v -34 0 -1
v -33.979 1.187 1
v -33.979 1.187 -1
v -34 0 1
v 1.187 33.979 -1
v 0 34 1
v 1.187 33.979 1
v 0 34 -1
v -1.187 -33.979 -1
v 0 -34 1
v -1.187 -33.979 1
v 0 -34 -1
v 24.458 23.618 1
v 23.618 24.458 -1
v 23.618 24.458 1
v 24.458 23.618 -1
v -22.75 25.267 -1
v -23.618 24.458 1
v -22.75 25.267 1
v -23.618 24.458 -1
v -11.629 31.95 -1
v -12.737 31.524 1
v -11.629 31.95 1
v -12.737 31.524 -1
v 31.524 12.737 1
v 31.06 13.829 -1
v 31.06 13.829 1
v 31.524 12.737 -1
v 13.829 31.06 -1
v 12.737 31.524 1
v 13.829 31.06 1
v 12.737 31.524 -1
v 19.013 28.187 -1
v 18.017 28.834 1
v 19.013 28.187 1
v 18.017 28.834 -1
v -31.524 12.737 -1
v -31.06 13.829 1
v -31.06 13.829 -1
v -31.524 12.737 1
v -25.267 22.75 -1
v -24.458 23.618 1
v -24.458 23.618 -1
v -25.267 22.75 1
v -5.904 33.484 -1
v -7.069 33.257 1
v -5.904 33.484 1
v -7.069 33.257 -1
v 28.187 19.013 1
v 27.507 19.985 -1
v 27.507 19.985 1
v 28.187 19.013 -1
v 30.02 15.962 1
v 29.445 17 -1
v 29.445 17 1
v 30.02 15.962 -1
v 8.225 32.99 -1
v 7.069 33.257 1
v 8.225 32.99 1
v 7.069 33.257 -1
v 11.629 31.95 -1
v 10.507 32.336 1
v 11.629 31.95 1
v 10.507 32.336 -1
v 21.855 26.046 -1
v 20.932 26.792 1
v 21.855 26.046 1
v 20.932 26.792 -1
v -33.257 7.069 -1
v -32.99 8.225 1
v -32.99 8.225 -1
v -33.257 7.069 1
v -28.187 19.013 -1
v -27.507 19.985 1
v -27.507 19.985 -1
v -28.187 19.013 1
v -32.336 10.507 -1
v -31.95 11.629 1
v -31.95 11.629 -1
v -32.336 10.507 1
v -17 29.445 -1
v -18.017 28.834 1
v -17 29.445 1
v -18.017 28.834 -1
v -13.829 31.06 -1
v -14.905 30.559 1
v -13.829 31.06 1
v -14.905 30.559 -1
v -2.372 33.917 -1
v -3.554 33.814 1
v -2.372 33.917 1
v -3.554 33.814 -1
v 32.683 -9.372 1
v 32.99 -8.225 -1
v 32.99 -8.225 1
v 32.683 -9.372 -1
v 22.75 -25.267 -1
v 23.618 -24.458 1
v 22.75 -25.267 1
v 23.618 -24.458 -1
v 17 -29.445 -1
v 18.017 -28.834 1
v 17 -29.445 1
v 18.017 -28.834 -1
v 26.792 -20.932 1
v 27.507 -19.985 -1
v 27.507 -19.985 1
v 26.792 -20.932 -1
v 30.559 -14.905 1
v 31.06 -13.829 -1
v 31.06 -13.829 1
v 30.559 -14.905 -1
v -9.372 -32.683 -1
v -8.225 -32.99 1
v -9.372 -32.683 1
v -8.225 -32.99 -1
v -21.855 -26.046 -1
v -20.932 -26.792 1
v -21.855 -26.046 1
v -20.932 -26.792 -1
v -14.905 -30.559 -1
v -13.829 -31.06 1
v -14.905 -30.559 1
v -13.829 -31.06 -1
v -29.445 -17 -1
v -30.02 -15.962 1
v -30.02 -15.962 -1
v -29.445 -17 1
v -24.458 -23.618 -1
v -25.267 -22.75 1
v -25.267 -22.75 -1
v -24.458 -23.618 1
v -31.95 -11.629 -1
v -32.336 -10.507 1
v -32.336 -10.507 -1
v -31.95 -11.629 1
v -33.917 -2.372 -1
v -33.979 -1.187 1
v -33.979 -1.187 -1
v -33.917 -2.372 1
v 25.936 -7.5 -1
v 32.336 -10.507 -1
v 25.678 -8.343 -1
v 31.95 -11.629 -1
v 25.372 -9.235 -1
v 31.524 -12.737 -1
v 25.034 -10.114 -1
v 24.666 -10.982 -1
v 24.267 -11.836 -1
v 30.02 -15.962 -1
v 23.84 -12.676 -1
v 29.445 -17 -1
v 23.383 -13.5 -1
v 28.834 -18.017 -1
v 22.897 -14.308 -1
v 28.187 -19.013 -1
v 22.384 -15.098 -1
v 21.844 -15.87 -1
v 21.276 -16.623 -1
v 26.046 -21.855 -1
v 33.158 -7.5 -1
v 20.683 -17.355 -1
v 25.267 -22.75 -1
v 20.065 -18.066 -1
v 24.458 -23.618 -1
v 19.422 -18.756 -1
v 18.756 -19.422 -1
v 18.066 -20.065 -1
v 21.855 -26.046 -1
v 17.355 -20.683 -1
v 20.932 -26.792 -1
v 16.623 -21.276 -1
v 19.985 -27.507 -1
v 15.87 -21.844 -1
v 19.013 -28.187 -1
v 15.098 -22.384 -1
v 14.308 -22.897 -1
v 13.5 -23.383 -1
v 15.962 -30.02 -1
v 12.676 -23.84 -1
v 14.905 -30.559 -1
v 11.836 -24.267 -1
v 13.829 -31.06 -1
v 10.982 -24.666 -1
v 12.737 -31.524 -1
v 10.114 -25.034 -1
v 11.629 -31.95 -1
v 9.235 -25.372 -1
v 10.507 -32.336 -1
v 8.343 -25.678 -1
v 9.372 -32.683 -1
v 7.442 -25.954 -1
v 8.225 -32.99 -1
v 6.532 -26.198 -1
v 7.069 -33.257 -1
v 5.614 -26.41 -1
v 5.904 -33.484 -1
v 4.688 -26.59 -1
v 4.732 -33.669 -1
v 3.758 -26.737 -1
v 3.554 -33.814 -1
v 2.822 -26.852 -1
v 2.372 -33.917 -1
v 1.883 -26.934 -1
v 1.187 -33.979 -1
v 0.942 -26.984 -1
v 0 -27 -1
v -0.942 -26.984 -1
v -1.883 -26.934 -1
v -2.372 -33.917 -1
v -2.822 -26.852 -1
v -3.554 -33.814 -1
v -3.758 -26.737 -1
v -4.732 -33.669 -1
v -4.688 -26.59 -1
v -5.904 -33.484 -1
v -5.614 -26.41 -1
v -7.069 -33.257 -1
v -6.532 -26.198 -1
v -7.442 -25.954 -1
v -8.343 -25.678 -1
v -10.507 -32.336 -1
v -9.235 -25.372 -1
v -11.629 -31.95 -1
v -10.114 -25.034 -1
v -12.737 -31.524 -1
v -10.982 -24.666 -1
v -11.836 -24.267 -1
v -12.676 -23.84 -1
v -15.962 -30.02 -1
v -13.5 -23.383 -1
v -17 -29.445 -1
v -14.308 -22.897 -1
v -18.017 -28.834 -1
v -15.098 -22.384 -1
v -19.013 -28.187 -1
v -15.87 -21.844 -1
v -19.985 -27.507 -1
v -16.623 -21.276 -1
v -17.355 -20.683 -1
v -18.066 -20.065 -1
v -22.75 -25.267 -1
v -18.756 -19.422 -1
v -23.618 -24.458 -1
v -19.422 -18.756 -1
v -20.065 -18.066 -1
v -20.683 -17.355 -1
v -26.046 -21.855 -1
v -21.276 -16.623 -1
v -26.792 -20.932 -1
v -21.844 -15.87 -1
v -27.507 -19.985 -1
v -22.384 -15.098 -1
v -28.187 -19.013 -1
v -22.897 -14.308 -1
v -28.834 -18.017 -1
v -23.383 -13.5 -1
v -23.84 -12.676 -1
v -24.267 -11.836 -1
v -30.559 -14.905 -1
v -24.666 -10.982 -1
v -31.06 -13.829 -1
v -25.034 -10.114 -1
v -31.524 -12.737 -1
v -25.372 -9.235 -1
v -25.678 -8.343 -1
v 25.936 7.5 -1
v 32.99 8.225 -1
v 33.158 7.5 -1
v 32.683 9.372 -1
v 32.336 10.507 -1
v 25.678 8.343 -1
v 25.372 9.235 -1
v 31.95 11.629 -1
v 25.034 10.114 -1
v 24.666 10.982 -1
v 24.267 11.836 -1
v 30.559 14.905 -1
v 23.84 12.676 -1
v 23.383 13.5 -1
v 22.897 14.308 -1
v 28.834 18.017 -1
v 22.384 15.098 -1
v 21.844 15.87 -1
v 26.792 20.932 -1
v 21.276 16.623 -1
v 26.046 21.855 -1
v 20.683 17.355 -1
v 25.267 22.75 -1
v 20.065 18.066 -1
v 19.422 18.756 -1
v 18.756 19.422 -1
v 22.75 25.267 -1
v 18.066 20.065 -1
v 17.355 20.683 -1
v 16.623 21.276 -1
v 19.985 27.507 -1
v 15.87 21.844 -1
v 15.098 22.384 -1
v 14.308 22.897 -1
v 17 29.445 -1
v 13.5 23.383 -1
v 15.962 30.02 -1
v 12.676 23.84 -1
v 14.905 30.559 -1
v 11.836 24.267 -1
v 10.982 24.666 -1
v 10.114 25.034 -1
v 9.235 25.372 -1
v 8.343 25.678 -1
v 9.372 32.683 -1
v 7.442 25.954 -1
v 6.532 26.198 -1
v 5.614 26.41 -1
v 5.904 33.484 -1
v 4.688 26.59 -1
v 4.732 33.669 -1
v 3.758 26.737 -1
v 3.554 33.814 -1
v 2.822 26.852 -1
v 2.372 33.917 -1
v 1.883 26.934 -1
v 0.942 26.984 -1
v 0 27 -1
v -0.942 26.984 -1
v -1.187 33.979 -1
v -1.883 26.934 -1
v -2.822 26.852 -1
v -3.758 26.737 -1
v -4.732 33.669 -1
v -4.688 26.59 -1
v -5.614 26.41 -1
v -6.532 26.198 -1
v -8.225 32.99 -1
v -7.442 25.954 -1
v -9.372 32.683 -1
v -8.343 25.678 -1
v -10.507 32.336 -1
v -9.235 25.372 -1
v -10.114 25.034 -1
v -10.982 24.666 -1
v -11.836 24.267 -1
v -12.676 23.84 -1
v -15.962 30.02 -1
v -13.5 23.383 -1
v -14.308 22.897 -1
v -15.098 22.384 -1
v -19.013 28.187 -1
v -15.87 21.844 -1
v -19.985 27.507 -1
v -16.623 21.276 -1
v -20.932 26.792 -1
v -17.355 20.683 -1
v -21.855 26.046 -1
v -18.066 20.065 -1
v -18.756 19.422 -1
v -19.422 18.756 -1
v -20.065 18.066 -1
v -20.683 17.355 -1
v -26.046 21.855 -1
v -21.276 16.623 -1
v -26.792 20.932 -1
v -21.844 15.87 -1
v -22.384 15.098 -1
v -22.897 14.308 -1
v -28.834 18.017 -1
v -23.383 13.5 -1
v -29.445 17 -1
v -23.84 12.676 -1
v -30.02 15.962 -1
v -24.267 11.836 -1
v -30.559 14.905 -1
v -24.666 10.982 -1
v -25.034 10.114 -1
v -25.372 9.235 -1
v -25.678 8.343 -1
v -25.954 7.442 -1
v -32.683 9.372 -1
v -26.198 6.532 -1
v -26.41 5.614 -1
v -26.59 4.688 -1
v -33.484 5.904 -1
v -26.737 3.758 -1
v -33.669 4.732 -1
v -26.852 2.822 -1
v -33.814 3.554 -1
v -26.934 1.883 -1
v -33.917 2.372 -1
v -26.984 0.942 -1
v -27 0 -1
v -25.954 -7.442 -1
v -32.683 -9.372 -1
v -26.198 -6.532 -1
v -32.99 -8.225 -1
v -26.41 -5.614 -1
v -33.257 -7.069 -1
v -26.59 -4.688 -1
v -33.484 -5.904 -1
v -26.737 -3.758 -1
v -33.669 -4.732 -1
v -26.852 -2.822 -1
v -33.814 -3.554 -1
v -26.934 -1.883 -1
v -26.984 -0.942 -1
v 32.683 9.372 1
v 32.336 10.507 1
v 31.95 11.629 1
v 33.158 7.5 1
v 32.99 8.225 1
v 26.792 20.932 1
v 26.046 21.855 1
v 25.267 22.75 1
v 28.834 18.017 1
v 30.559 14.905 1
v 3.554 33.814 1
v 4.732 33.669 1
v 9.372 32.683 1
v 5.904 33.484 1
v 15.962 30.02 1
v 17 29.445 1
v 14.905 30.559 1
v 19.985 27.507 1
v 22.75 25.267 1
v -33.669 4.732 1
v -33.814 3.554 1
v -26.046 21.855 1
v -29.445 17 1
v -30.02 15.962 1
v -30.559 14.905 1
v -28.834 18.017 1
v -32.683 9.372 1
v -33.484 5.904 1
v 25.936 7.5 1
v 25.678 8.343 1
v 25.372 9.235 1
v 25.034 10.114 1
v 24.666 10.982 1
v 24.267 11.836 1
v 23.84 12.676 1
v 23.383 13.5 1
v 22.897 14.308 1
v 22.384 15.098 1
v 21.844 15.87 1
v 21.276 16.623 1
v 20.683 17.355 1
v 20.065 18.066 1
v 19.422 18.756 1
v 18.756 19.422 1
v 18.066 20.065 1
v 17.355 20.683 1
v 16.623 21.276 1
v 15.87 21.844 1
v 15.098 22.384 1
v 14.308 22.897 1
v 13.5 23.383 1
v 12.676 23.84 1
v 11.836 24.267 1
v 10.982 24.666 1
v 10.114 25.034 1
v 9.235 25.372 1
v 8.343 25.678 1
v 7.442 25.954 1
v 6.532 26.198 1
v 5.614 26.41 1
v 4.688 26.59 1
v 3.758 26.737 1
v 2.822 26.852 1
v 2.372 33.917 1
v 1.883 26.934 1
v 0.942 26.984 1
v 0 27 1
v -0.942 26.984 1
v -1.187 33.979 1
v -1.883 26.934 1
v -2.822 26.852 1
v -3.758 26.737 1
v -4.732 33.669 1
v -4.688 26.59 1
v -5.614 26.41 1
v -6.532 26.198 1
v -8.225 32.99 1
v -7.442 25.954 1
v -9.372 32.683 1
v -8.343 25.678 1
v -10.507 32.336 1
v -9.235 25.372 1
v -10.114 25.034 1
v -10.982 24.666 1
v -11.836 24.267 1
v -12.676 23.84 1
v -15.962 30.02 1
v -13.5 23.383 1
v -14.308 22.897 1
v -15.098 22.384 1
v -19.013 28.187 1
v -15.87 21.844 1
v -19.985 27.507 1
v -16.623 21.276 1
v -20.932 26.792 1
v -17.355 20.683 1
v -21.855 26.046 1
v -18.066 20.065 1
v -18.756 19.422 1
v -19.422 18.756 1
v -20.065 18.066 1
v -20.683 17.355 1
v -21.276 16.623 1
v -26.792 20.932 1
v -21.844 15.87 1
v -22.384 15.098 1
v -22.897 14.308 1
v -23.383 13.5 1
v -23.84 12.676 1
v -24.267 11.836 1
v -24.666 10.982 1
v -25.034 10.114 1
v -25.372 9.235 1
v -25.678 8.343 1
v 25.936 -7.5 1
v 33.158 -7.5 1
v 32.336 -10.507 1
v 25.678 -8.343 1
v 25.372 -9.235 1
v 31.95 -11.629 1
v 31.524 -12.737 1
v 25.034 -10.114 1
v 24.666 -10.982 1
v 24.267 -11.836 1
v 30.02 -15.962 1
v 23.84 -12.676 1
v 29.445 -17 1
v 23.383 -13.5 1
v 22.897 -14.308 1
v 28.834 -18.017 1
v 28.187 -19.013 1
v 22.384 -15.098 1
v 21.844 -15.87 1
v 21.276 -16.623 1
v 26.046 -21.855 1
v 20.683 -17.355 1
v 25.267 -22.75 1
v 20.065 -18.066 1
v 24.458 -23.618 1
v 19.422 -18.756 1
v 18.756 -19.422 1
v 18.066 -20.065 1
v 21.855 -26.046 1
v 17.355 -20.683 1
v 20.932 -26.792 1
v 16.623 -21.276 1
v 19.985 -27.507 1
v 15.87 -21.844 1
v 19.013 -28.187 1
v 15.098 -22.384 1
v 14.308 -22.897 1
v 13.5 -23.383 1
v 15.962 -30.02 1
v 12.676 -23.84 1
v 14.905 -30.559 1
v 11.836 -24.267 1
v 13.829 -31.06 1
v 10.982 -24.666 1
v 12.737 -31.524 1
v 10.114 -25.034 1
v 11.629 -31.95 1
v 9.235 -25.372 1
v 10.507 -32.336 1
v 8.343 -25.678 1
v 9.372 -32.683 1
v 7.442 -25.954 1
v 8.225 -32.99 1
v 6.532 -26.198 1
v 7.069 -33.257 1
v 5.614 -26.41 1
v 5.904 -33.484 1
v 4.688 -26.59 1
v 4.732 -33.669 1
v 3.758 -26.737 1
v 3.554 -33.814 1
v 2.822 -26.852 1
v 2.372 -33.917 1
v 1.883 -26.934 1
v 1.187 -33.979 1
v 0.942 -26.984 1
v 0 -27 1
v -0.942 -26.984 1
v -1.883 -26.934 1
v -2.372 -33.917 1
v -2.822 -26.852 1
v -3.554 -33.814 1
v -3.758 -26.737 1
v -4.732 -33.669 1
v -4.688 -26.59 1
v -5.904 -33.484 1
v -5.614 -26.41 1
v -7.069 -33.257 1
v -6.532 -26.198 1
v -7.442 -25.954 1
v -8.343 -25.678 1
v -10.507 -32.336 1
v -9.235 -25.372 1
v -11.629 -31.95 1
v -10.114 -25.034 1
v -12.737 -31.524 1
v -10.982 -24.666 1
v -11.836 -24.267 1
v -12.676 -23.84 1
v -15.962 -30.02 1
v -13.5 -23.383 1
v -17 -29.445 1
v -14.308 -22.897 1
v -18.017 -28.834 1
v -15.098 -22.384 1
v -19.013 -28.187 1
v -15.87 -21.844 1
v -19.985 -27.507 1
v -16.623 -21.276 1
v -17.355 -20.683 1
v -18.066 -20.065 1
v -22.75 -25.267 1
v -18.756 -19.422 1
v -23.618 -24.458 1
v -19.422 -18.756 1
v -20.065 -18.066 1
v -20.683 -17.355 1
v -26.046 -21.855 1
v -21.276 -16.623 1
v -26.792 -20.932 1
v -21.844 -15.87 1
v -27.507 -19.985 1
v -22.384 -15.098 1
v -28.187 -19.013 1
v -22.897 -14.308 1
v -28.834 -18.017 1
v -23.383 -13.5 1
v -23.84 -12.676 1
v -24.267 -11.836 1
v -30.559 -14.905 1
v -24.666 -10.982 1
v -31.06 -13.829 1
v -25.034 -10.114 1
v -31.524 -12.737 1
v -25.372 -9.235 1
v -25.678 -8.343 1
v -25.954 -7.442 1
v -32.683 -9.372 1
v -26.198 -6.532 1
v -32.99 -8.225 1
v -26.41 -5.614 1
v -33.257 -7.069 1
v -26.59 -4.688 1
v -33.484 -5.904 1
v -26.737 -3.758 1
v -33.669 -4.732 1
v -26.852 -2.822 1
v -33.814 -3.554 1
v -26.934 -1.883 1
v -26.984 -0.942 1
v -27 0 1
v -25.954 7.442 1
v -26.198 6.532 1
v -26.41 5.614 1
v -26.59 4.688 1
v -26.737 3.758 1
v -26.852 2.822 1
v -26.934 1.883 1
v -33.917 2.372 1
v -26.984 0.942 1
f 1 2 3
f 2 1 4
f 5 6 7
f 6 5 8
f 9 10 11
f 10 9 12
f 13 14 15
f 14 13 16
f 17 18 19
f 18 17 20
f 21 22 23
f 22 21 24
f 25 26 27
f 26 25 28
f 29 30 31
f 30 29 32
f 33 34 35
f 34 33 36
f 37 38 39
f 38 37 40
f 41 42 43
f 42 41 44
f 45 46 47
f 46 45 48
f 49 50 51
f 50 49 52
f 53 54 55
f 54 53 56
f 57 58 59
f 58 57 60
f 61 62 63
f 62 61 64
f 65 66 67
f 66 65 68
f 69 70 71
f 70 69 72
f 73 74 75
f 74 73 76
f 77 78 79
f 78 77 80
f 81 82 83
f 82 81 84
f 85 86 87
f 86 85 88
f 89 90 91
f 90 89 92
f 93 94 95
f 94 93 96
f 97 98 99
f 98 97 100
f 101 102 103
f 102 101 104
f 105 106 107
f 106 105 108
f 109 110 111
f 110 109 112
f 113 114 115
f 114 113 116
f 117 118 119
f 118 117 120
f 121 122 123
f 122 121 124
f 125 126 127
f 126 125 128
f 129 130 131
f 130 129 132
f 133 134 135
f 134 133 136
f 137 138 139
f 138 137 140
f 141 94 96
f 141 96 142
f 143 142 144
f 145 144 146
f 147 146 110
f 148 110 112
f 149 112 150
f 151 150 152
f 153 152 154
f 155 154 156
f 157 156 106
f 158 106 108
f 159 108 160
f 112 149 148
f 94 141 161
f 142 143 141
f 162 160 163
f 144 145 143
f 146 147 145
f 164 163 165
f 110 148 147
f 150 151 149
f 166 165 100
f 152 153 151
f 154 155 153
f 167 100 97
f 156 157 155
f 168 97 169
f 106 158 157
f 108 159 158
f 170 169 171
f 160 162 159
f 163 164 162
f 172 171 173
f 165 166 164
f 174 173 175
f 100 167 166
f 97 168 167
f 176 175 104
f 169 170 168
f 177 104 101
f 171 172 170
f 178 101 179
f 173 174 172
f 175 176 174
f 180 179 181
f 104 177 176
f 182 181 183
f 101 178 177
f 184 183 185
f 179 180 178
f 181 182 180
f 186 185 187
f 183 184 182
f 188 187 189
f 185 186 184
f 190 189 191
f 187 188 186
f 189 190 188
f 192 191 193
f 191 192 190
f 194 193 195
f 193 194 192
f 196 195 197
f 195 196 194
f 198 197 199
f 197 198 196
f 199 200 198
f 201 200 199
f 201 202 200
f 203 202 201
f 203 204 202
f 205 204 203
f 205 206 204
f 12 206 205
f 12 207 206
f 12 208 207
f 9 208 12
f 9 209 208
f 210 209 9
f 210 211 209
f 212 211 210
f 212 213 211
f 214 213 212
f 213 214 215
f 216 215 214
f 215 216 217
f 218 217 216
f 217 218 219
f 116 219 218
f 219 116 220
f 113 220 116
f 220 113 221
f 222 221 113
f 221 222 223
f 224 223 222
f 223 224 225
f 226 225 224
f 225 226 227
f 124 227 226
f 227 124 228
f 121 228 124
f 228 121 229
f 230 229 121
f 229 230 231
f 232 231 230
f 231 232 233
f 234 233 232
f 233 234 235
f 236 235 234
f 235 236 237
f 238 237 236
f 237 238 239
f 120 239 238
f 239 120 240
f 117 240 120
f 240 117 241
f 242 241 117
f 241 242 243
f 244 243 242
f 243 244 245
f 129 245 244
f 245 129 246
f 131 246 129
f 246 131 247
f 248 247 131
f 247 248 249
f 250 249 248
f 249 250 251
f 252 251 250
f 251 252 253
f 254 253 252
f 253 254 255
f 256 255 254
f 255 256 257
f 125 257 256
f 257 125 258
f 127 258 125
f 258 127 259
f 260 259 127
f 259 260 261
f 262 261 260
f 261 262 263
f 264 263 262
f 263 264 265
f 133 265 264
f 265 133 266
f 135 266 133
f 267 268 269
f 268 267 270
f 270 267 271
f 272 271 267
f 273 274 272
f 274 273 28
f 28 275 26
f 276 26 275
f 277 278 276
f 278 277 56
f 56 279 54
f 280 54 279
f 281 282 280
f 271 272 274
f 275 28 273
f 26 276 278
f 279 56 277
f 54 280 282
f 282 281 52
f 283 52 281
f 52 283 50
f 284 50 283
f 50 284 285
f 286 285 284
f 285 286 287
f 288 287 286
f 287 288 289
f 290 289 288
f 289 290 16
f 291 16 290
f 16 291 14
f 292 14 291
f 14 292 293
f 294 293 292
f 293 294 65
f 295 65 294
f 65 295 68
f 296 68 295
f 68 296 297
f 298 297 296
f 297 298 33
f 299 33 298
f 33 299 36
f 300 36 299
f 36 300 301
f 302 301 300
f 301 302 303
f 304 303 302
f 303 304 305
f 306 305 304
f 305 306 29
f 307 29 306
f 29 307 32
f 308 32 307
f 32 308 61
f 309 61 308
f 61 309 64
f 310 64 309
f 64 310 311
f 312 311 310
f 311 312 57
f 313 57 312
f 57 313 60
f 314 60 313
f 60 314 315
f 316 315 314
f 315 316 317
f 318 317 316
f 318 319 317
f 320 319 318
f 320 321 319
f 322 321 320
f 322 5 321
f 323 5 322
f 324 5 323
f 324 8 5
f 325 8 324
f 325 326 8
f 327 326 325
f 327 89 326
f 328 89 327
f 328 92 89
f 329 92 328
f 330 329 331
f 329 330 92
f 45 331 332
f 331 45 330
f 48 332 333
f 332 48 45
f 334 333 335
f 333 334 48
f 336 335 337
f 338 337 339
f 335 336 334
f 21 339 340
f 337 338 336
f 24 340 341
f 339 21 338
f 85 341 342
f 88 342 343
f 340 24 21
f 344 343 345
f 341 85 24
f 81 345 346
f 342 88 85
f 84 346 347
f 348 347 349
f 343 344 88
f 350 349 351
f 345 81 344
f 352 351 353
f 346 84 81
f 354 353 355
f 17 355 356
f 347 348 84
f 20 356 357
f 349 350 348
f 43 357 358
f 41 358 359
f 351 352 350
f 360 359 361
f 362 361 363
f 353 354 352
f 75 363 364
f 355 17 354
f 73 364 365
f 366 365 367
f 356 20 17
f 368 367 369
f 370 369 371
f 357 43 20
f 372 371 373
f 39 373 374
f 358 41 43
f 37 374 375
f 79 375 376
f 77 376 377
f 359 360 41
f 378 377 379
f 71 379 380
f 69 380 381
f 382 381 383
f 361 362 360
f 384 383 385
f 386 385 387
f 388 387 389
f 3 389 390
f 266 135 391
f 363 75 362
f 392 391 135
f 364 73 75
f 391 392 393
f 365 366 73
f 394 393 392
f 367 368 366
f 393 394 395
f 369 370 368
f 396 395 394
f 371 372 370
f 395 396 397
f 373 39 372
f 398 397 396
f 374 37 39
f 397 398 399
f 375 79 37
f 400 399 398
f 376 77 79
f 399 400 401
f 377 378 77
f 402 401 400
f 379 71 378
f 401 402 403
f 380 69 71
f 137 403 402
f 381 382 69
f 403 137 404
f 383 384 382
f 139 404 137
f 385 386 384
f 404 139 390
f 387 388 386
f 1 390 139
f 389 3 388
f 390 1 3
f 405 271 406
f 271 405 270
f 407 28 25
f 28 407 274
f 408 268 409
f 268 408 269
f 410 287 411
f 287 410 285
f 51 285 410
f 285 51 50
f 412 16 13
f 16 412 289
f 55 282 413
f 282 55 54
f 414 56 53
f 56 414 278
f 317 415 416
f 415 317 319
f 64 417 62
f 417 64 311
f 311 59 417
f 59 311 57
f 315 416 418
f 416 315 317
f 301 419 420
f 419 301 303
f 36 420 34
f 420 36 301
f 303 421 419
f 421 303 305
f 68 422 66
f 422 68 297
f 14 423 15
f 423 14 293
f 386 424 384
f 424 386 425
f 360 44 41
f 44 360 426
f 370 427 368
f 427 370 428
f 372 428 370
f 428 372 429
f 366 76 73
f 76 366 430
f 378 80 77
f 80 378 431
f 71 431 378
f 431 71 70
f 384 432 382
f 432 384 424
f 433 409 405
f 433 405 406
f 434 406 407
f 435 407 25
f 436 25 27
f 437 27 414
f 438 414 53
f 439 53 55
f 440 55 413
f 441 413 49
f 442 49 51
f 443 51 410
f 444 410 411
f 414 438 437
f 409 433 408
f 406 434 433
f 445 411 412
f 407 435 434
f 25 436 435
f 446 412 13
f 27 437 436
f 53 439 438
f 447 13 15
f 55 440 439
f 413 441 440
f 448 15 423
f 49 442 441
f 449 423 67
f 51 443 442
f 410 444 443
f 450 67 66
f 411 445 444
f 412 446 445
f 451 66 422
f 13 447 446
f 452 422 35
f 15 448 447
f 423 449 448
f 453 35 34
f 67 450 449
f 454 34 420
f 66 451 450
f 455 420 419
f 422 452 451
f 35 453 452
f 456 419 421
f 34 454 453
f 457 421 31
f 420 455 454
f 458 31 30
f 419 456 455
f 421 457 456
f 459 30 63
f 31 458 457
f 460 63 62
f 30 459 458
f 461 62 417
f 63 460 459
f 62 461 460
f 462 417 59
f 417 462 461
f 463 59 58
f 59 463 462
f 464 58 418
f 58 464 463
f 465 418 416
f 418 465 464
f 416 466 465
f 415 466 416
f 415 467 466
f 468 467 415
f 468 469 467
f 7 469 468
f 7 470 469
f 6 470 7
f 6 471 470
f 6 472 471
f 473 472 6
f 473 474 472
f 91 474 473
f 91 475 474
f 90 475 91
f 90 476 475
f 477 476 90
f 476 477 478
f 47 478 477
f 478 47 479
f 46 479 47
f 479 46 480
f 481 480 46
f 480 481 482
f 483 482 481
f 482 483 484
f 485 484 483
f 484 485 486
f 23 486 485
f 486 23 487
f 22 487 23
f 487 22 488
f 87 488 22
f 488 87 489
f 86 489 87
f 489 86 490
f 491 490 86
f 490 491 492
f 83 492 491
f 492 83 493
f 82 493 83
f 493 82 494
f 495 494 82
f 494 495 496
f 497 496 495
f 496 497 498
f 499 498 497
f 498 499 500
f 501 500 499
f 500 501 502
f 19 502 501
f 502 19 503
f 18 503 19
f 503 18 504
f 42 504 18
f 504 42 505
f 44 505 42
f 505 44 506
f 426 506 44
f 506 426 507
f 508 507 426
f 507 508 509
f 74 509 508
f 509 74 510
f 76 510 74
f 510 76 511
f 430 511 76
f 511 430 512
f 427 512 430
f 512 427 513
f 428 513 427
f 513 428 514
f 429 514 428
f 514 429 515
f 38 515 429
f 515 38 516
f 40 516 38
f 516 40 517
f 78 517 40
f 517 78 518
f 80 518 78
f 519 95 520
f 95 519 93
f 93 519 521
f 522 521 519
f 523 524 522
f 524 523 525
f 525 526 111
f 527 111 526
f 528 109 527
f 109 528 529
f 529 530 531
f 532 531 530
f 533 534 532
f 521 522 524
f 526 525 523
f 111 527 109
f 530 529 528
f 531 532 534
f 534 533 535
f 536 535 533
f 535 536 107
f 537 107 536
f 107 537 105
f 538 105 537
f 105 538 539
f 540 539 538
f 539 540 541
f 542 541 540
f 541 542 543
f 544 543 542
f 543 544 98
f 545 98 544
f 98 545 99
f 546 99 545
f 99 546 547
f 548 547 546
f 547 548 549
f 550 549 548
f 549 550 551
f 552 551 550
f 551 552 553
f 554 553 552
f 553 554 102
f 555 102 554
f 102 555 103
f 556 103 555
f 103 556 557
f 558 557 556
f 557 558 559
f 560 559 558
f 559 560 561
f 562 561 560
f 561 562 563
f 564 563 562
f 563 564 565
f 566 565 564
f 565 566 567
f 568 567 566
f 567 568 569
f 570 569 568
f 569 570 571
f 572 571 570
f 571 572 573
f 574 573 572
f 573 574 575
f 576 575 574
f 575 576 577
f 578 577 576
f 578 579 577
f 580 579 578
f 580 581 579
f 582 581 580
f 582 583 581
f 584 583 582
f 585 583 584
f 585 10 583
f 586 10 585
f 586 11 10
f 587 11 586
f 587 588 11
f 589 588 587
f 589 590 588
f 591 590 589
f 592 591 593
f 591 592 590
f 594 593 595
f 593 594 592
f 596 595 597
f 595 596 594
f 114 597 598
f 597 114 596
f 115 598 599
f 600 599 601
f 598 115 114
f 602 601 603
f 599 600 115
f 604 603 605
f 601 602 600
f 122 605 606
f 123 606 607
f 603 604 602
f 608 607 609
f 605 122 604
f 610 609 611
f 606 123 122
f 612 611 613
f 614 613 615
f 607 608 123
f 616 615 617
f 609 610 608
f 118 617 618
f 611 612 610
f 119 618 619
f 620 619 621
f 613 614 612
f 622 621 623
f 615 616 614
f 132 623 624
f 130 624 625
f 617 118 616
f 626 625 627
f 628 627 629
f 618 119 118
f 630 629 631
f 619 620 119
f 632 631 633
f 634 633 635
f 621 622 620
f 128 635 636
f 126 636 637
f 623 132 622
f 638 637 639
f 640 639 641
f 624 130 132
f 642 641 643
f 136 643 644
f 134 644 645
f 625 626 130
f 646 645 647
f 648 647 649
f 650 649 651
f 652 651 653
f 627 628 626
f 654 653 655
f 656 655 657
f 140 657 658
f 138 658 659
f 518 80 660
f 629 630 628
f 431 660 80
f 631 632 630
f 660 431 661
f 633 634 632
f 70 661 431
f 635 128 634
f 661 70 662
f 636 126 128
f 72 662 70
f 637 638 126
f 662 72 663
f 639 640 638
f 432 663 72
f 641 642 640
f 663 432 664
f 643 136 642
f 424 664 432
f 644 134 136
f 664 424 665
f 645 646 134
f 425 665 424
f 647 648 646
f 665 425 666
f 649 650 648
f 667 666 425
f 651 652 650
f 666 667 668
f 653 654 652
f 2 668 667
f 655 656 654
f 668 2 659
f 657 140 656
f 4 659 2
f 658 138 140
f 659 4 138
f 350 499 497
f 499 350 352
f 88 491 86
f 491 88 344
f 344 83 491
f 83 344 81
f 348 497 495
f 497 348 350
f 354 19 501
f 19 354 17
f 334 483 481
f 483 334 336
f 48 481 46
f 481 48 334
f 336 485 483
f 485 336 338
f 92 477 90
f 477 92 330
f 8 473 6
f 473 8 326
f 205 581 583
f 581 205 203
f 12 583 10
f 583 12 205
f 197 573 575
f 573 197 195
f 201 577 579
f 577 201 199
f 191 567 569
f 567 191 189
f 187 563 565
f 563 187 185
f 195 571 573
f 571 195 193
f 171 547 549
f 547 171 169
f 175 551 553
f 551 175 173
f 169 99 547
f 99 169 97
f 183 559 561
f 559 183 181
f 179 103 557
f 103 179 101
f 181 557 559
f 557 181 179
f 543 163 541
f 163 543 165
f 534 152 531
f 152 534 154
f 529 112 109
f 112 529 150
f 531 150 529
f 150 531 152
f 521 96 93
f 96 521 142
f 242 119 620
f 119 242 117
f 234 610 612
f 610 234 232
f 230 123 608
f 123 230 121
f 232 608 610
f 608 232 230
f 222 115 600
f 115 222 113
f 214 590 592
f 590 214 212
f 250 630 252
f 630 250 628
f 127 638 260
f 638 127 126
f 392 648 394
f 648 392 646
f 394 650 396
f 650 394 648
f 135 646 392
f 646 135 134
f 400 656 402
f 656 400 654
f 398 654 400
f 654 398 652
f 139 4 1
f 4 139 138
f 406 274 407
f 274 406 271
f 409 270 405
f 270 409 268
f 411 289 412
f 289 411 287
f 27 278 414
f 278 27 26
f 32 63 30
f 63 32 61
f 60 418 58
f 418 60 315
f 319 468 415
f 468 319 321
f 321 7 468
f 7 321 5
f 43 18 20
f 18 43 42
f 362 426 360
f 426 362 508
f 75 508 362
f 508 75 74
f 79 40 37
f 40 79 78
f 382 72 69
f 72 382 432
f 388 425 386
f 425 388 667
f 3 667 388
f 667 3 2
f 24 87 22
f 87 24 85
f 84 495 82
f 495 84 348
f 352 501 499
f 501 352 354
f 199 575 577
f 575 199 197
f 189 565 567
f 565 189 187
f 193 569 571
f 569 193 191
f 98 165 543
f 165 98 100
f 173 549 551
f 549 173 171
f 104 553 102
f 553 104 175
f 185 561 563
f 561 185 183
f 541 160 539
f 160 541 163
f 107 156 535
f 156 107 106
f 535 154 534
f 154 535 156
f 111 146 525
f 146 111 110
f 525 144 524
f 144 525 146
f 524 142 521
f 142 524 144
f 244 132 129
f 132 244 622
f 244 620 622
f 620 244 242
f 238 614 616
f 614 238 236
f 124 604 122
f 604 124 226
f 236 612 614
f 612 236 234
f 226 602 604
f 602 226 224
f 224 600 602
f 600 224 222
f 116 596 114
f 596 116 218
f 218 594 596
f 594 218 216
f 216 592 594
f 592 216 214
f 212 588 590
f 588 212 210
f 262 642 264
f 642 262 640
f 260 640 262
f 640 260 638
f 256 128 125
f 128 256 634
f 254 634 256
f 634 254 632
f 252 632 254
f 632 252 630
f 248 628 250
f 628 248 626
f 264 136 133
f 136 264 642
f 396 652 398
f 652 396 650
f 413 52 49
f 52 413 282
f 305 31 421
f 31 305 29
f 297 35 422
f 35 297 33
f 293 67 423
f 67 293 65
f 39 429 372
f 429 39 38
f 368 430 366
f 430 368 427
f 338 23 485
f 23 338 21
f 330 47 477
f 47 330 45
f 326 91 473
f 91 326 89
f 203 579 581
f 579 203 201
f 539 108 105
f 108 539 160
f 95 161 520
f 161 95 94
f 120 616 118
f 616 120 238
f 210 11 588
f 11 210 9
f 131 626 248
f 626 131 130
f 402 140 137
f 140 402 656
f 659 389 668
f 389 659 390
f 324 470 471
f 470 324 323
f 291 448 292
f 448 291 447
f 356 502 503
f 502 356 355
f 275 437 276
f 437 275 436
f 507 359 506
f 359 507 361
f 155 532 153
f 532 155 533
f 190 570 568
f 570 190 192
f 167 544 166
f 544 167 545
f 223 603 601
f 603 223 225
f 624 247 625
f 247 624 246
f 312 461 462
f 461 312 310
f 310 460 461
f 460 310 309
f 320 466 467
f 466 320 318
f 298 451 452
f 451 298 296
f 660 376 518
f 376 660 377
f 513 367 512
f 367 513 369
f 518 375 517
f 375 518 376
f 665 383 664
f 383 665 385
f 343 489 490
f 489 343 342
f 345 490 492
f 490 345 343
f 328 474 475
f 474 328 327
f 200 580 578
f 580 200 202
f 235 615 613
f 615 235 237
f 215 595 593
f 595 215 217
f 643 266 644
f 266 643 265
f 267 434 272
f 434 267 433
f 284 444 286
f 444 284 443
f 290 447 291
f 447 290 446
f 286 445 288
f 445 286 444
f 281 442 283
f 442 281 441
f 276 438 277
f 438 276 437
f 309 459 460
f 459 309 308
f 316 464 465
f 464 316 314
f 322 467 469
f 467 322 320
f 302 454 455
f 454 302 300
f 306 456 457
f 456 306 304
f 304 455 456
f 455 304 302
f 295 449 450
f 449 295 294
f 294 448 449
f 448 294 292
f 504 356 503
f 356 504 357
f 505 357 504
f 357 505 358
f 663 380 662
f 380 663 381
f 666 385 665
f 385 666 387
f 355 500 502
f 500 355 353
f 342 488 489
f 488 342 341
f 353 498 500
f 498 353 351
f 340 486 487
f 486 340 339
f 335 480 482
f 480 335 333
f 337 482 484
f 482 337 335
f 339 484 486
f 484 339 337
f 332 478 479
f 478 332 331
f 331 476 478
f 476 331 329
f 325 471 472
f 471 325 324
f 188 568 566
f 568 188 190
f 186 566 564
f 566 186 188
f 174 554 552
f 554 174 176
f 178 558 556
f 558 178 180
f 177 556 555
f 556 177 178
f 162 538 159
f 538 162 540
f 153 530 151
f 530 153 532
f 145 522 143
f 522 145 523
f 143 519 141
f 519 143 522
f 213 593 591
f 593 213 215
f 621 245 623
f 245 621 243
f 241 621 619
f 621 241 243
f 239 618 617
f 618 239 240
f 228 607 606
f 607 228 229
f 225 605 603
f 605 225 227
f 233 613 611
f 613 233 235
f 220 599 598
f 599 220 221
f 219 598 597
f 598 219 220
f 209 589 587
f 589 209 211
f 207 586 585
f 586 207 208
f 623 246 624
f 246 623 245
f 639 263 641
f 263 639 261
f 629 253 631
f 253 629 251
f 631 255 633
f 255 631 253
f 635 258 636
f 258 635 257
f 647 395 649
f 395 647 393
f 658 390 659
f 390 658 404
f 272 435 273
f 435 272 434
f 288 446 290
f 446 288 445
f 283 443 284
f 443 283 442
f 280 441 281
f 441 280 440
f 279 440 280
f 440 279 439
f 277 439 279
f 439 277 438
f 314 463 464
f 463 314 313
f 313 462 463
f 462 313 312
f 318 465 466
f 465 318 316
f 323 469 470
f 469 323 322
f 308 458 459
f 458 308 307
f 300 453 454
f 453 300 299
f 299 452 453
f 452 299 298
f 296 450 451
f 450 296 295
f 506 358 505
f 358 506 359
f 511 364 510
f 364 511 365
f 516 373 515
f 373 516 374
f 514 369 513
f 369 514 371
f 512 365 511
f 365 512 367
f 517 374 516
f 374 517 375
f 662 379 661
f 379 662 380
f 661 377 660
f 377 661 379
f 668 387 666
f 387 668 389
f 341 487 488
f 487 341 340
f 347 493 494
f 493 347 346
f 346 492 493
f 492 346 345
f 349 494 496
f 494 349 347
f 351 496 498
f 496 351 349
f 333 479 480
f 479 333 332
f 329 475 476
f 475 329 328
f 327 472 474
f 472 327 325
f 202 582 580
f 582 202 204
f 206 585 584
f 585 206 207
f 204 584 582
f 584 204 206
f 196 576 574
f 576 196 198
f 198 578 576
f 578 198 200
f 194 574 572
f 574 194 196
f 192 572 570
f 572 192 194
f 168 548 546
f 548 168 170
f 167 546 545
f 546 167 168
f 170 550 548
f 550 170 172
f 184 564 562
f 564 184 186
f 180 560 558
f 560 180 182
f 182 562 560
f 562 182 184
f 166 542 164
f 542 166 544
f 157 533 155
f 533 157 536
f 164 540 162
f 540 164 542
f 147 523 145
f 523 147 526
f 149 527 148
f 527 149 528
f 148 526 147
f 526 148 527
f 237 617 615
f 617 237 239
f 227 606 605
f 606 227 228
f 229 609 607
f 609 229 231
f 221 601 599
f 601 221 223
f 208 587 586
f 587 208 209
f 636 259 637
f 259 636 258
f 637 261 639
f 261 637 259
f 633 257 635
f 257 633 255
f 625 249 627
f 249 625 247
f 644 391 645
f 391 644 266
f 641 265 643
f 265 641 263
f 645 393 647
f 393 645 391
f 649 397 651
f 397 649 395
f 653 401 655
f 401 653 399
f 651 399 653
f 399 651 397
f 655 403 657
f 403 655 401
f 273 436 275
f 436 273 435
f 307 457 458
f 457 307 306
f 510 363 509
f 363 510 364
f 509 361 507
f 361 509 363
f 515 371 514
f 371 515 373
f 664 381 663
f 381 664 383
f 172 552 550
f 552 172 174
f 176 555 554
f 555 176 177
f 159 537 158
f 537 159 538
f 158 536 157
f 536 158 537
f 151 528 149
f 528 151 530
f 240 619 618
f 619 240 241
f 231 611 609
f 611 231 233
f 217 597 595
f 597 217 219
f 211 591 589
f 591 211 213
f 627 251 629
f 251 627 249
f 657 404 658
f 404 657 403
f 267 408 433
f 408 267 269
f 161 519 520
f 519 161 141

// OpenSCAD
height = 2;
radius = 34;
width = 7;
slot_width=15;
resol = 180;
difference(){
    cylinder(h=height,r=radius,center=true,$fn=resol);
    cylinder(h=height,r=radius-width,center=true,$fn=resol);
    translate([0,-slot_width/2,-height/2]){
        cube([radius,slot_width,height]);    
    }
}
